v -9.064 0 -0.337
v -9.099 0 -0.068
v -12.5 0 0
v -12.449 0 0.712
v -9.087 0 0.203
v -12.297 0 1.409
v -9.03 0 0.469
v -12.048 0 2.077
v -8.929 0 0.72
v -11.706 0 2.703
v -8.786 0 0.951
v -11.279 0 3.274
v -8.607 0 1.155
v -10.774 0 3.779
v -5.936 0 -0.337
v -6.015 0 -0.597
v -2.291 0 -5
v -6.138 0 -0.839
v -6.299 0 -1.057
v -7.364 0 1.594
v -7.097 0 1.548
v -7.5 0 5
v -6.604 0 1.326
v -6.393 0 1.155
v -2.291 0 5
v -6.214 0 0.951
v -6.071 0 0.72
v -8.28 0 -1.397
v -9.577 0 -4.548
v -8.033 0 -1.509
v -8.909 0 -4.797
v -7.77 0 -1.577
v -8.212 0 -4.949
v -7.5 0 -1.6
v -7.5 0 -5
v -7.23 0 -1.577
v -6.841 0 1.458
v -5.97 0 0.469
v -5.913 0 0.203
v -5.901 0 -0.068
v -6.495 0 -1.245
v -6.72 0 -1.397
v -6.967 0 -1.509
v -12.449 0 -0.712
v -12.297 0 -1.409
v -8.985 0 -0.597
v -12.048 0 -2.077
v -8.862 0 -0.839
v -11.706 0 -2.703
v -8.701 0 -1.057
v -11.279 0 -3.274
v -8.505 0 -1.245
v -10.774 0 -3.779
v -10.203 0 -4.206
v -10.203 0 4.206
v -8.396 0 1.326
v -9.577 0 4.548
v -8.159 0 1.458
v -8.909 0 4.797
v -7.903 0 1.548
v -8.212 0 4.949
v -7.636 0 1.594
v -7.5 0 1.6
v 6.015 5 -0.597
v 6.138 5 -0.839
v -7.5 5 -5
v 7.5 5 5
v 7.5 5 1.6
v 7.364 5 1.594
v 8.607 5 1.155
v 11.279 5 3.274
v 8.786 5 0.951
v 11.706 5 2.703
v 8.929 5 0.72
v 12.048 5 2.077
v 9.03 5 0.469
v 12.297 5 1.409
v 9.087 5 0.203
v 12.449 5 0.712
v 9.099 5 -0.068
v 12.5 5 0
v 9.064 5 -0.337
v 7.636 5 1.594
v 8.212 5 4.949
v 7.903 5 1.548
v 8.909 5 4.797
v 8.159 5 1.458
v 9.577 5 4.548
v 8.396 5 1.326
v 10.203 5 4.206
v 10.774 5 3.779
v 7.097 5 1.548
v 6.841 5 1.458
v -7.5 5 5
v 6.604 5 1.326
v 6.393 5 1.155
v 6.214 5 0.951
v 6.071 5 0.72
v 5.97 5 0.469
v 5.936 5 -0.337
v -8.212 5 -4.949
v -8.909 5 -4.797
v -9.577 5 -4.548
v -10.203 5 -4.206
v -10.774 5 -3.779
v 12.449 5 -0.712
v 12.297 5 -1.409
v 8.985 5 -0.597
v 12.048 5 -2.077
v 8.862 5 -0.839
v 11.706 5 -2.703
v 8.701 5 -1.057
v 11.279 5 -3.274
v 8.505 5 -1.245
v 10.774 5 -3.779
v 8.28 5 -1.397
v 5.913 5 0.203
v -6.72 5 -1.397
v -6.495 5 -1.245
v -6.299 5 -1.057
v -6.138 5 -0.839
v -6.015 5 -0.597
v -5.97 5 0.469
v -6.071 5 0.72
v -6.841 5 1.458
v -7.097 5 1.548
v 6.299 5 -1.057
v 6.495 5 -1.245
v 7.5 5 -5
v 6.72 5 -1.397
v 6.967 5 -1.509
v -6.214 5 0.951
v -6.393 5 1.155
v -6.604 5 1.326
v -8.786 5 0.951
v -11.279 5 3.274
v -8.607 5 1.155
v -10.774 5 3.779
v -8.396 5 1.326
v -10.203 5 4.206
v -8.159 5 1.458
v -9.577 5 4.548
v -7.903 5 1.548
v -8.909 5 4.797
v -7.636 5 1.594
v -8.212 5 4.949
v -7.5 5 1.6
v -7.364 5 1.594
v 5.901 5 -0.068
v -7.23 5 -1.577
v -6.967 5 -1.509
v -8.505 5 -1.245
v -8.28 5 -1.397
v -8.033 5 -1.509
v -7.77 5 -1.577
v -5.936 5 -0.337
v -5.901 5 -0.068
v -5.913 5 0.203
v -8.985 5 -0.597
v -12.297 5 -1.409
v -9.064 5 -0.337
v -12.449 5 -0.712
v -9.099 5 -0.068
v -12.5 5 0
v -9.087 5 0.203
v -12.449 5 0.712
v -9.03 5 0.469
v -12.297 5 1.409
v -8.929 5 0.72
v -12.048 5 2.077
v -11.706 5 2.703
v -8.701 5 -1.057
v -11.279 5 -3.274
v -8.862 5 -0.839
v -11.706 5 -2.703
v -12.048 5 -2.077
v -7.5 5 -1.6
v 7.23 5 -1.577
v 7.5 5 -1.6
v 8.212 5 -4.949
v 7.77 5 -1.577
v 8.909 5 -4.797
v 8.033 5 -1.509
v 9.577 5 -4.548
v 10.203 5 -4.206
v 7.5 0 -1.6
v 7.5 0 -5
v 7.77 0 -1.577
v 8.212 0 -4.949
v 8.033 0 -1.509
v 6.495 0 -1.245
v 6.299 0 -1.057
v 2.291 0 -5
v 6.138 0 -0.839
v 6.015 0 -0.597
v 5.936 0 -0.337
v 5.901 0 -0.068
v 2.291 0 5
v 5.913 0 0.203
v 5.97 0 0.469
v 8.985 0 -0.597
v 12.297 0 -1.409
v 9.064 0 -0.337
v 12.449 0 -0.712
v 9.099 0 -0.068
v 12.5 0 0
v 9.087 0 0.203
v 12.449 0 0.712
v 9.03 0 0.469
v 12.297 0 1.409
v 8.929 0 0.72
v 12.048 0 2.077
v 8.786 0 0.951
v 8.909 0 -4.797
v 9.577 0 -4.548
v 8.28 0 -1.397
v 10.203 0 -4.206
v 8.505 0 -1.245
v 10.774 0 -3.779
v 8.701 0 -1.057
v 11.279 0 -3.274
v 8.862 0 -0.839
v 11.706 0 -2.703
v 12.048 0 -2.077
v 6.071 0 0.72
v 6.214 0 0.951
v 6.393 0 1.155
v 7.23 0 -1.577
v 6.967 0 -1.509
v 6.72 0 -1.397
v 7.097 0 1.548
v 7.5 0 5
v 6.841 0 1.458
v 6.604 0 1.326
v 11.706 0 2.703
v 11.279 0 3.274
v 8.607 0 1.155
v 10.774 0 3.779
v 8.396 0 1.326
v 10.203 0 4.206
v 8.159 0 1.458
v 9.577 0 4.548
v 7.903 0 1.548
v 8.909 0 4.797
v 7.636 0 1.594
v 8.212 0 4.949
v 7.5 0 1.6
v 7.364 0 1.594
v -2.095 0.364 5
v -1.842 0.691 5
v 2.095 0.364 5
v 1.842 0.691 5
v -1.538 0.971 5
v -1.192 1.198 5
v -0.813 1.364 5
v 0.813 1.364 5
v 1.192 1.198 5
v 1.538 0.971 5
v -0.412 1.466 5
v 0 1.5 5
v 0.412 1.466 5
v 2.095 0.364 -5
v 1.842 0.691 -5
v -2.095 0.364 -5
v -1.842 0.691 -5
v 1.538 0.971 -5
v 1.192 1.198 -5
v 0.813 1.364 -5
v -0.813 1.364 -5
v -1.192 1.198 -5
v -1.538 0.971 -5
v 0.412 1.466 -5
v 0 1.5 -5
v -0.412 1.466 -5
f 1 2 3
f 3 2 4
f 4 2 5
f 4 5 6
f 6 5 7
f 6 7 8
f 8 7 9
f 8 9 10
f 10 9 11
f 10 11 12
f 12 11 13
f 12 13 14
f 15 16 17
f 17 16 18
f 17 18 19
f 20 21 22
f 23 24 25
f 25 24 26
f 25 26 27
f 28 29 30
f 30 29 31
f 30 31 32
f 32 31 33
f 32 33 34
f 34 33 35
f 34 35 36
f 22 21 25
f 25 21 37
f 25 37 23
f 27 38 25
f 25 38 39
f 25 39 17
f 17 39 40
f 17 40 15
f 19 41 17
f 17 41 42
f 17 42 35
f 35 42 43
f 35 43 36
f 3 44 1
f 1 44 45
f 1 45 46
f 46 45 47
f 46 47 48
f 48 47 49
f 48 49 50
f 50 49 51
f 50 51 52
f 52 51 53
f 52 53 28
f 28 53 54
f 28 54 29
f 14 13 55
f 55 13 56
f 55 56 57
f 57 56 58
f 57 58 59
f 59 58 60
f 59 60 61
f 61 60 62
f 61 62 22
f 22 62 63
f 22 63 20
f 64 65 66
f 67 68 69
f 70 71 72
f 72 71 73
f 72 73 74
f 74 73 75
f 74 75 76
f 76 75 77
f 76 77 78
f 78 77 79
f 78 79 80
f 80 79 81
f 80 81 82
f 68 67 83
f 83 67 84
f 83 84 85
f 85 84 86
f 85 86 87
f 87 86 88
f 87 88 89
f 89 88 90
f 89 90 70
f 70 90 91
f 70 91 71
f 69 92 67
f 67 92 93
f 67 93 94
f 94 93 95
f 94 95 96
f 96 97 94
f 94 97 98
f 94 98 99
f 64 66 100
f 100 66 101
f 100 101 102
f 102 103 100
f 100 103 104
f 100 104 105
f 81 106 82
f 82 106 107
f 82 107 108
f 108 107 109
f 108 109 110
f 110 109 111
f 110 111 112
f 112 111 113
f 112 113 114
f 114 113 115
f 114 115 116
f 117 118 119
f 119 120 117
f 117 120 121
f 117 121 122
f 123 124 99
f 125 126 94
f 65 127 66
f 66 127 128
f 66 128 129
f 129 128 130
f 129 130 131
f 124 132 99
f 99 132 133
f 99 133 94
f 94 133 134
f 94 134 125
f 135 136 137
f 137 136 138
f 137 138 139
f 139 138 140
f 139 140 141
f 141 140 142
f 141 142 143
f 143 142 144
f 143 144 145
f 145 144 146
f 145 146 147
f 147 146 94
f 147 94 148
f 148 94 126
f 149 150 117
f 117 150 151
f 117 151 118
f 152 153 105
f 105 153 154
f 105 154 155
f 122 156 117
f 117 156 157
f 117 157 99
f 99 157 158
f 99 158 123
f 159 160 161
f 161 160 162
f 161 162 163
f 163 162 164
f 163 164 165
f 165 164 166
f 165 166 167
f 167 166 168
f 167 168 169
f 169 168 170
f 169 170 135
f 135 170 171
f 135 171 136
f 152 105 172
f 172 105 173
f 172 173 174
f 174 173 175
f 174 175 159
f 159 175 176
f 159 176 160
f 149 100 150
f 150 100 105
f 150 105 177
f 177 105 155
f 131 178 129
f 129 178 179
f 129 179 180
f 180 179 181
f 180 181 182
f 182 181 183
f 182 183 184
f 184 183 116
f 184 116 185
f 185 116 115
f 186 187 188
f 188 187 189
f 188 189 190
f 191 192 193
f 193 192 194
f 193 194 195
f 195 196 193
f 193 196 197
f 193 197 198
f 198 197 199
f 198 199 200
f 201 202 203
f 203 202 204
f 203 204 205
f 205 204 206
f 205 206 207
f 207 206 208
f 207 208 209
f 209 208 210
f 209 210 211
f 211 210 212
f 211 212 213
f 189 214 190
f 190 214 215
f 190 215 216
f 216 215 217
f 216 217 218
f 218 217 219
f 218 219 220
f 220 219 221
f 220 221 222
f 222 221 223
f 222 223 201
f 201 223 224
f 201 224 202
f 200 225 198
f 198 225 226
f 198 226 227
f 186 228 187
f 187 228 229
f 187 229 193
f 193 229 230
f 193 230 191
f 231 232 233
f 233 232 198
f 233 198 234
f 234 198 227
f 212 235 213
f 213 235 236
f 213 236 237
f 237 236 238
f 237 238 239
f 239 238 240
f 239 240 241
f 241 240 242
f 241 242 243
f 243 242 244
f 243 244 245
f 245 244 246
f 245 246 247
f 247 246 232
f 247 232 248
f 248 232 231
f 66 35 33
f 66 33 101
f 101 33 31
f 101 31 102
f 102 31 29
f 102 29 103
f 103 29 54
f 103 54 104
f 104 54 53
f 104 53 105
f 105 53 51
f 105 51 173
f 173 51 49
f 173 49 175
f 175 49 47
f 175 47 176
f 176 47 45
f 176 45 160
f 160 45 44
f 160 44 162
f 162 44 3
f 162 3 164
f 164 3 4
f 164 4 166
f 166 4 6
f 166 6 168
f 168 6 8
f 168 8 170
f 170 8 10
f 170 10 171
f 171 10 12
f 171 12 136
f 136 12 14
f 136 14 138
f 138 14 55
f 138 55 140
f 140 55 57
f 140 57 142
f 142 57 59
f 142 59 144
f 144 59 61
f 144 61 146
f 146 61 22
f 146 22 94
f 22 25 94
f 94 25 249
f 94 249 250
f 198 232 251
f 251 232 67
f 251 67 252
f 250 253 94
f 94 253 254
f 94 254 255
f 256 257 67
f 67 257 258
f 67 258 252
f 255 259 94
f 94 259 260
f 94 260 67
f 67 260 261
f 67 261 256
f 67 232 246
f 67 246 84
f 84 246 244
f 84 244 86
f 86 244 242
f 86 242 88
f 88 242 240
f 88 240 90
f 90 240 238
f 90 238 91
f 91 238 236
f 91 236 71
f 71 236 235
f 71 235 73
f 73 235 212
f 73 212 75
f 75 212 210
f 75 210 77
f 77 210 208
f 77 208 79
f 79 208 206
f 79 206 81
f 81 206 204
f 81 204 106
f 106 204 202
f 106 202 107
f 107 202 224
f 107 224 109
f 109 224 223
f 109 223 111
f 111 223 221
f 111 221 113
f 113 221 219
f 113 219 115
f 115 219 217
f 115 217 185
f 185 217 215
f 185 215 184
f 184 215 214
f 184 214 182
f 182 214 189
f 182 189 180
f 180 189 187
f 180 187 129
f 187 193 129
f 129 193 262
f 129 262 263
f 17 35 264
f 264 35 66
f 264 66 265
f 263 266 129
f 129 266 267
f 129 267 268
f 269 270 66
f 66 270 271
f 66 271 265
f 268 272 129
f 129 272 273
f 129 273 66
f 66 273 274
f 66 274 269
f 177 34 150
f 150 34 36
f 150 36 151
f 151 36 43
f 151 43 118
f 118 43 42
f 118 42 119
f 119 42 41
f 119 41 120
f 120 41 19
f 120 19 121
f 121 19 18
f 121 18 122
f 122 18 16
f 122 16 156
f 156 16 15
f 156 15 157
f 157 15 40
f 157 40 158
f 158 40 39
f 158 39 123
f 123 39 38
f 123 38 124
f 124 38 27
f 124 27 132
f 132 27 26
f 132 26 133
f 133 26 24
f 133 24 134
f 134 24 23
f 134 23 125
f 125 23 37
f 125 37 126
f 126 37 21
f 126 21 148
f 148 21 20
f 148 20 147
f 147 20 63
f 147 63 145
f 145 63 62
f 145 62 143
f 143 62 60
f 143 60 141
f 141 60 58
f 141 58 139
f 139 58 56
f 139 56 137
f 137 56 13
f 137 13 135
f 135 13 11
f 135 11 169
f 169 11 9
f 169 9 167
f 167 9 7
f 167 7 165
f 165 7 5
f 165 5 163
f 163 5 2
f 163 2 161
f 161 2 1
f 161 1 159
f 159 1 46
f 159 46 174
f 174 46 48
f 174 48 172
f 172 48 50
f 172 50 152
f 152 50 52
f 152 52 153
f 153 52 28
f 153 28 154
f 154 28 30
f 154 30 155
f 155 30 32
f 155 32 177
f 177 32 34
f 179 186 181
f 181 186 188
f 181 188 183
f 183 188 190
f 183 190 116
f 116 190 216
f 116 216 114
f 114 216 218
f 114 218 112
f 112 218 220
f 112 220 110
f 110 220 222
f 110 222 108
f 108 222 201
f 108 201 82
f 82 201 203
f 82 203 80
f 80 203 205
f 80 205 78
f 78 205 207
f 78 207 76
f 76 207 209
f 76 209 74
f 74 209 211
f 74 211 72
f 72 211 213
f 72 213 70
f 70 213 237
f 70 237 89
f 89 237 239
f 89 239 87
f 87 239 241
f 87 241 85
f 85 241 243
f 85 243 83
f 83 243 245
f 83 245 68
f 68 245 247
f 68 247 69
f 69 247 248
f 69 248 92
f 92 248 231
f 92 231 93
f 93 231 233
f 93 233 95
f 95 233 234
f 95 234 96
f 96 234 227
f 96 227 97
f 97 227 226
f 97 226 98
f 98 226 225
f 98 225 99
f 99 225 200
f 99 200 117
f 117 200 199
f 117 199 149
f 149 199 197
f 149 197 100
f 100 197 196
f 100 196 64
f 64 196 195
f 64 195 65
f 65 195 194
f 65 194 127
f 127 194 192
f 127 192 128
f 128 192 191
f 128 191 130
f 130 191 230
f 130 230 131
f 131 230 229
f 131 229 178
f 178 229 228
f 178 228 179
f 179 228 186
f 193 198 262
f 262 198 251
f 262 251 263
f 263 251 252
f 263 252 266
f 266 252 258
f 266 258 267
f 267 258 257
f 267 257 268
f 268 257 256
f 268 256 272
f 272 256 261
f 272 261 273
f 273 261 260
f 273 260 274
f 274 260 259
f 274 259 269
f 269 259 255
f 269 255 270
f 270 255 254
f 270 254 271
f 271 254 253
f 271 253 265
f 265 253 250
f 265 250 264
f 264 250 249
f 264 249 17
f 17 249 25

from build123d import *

# Parameters (mm, degrees)
SKETCH1_R           = 1.6
BOSS_EXTRUDE1_DEPTH = 5
SKETCH2_R           = 2.5
CUT_EXTRUDE1_DEPTH  = 17.770509831


with BuildPart() as part:
    # Sketch1 → Boss-Extrude1 (new body)
    with BuildSketch(Plane(origin=(0, 0, 0), x_dir=(1, 0, 0), z_dir=(0, 1, 0))):
        with BuildLine():
            Line((-7.5, 5), (7.5, 5))
            ThreePointArc((7.5, 5), (12.5, 0), (7.5, -5))
            Line((7.5, -5), (-7.5, -5))
            ThreePointArc((-7.5, -5), (-12.5, 0), (-7.5, 5))
        make_face()
        with Locations(Location((-7.5, 0, 0), (0, 0, 270))):
            Circle(SKETCH1_R, mode=Mode.SUBTRACT)
        with Locations(Location((7.5, 0, 0), (0, 0, 270))):
            Circle(SKETCH1_R, mode=Mode.SUBTRACT)
    extrude(amount=BOSS_EXTRUDE1_DEPTH)

    # Sketch2 → Cut-Extrude1 (cut, through all)
    with BuildSketch(Plane.XY.offset(5)):
        with Locations((0, -1)):
            Circle(SKETCH2_R)
    extrude(amount=-CUT_EXTRUDE1_DEPTH, mode=Mode.SUBTRACT)


solid = part.part
